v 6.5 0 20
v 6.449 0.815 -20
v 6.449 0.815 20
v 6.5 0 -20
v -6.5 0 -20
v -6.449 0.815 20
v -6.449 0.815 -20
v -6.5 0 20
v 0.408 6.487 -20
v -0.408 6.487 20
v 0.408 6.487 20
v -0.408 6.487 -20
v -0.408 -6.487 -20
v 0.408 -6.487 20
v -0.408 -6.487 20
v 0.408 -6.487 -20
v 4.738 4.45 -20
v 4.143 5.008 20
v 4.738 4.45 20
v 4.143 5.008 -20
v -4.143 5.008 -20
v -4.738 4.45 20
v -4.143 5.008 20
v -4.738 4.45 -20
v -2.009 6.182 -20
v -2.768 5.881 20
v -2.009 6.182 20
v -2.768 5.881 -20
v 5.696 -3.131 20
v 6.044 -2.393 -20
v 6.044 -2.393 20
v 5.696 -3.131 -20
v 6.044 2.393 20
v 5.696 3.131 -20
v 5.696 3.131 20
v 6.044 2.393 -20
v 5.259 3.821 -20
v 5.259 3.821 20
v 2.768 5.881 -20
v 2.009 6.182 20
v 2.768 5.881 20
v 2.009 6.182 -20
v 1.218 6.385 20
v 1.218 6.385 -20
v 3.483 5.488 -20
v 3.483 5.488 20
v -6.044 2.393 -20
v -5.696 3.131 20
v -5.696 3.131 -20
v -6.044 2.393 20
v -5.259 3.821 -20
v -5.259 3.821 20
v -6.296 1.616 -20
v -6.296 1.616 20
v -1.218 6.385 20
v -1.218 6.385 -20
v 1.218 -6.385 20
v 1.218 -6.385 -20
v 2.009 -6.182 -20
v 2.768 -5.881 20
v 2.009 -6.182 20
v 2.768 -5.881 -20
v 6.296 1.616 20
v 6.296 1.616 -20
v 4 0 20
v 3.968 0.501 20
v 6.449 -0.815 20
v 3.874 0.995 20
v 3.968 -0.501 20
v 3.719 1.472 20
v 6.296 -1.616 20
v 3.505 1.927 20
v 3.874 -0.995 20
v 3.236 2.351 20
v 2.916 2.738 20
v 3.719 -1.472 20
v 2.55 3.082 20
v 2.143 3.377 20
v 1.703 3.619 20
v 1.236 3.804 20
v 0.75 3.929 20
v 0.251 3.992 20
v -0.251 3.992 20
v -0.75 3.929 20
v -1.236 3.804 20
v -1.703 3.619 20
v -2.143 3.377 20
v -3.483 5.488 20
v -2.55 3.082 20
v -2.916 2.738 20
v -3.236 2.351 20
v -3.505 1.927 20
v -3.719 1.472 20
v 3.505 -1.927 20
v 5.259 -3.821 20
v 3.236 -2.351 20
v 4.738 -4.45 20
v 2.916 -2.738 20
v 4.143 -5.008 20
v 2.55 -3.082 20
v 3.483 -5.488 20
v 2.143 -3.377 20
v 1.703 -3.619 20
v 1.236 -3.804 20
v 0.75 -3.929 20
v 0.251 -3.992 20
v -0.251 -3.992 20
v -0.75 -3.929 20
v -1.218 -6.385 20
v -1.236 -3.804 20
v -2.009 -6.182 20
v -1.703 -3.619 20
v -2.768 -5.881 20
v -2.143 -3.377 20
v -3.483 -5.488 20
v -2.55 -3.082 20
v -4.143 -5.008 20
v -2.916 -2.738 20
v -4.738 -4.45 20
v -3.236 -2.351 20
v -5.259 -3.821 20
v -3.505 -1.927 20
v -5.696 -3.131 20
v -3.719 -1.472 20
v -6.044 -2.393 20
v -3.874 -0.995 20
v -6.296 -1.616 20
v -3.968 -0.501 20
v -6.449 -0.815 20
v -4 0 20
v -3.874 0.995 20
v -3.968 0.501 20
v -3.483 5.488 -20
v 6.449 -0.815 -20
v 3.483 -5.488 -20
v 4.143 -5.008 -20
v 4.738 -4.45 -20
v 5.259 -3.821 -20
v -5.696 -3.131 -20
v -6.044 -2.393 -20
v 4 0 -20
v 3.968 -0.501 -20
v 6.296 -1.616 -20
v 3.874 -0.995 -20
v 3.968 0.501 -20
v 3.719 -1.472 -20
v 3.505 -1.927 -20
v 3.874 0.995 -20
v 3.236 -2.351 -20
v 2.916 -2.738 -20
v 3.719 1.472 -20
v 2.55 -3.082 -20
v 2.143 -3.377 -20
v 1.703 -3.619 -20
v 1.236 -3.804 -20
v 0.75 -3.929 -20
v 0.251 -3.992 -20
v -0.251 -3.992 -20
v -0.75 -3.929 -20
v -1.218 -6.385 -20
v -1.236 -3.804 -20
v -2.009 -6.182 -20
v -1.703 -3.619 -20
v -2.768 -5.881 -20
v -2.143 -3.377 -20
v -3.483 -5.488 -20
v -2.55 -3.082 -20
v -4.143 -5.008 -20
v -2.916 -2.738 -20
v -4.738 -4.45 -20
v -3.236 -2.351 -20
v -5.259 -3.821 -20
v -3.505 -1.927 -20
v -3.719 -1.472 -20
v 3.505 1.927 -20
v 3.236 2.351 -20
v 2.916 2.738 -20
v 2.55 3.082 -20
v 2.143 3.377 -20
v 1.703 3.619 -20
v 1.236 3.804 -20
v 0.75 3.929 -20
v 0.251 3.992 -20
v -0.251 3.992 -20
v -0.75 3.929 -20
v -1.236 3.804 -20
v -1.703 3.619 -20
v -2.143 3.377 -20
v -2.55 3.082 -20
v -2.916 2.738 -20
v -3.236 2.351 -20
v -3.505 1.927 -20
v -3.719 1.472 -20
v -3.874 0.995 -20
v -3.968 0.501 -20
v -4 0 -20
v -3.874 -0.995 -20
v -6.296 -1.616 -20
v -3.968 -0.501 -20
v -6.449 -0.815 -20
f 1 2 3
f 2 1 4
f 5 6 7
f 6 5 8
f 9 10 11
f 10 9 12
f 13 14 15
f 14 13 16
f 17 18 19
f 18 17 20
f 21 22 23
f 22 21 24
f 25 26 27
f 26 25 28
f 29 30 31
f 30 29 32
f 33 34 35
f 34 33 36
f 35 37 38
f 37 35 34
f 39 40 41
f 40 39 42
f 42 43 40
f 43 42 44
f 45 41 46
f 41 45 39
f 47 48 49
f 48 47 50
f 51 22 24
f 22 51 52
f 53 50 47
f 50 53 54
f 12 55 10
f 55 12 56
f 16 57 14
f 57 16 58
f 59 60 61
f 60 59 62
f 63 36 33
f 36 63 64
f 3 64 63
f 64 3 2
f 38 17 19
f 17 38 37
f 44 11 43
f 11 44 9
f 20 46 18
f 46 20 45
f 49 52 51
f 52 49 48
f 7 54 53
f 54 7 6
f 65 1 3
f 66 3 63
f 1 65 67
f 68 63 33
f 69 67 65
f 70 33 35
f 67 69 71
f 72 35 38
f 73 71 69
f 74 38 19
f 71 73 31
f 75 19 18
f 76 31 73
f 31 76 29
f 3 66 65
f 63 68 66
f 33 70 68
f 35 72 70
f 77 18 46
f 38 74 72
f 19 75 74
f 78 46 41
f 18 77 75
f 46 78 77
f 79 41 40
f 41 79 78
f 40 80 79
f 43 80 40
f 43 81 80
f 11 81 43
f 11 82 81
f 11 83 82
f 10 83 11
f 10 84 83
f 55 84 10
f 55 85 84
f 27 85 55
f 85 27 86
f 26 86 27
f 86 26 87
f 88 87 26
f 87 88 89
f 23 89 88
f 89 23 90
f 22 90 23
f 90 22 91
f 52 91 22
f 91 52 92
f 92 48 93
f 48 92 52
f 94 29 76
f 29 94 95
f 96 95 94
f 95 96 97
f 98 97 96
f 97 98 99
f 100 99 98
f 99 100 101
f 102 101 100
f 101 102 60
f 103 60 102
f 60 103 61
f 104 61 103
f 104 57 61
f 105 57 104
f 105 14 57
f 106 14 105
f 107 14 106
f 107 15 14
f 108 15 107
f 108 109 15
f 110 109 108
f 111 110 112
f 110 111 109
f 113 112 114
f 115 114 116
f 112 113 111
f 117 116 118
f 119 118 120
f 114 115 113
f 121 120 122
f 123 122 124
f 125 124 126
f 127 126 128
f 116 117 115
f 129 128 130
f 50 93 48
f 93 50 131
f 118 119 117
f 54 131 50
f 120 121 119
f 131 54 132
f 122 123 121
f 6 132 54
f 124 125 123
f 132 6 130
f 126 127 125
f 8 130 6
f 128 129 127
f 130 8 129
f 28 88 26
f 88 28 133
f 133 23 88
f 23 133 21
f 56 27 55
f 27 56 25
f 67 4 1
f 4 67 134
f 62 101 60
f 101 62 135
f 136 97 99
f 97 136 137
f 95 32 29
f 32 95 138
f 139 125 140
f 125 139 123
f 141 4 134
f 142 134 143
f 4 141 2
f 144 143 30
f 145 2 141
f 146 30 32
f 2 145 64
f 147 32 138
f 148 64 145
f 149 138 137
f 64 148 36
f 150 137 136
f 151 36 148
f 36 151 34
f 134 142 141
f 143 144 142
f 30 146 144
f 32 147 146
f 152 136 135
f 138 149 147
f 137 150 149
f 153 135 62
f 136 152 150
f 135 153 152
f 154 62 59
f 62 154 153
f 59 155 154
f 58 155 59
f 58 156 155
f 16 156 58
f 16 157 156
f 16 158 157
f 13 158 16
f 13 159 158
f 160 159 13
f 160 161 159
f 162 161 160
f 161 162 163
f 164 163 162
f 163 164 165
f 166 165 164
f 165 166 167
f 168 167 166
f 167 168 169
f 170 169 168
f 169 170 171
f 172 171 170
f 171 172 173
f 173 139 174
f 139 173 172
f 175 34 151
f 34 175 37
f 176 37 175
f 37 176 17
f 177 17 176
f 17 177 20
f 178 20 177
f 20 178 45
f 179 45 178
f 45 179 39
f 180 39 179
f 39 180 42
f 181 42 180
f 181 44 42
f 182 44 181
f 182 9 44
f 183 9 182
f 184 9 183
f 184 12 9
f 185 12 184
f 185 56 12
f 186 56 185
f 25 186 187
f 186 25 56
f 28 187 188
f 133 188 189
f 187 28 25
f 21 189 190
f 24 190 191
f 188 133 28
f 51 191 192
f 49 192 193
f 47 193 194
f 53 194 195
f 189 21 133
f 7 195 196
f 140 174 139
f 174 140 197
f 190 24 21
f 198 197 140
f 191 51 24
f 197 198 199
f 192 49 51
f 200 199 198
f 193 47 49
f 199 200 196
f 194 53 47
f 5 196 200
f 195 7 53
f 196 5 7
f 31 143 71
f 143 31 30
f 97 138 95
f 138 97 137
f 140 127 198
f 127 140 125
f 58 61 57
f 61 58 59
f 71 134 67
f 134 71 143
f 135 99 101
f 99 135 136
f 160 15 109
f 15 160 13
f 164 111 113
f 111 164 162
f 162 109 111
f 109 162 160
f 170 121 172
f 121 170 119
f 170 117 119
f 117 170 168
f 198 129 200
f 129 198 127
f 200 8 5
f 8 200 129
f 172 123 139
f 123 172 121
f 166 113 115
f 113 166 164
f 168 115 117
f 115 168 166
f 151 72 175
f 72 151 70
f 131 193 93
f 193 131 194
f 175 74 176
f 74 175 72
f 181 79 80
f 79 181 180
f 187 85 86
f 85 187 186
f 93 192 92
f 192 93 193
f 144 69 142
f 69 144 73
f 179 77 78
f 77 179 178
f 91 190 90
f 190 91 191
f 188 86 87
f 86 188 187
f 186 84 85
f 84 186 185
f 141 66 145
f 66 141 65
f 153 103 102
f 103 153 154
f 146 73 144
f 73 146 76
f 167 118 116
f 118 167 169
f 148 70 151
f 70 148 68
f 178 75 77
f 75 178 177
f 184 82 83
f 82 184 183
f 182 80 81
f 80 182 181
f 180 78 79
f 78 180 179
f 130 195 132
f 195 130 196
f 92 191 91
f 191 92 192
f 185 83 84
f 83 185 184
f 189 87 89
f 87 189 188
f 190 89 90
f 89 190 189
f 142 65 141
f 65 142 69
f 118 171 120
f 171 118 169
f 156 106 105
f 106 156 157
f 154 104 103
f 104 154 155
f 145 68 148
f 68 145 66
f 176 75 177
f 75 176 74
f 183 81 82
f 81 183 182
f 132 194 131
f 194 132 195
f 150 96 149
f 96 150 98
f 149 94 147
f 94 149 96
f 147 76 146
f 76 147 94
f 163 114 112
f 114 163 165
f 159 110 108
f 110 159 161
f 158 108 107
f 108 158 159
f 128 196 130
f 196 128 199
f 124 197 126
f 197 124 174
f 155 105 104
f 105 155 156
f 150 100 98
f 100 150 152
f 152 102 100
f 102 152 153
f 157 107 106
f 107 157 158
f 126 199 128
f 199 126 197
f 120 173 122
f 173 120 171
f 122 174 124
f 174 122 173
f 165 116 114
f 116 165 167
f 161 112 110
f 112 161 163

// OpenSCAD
$fn = 50;


difference() {
	union() {
		translate(v = [0, 0, -20.0000000000]) {
			cylinder(h = 40, r = 6.5000000000);
		}
	}
	union() {
		translate(v = [0, 0, -100.0000000000]) {
			cylinder(h = 200, r = 4.0000000000);
		}
	}
}
